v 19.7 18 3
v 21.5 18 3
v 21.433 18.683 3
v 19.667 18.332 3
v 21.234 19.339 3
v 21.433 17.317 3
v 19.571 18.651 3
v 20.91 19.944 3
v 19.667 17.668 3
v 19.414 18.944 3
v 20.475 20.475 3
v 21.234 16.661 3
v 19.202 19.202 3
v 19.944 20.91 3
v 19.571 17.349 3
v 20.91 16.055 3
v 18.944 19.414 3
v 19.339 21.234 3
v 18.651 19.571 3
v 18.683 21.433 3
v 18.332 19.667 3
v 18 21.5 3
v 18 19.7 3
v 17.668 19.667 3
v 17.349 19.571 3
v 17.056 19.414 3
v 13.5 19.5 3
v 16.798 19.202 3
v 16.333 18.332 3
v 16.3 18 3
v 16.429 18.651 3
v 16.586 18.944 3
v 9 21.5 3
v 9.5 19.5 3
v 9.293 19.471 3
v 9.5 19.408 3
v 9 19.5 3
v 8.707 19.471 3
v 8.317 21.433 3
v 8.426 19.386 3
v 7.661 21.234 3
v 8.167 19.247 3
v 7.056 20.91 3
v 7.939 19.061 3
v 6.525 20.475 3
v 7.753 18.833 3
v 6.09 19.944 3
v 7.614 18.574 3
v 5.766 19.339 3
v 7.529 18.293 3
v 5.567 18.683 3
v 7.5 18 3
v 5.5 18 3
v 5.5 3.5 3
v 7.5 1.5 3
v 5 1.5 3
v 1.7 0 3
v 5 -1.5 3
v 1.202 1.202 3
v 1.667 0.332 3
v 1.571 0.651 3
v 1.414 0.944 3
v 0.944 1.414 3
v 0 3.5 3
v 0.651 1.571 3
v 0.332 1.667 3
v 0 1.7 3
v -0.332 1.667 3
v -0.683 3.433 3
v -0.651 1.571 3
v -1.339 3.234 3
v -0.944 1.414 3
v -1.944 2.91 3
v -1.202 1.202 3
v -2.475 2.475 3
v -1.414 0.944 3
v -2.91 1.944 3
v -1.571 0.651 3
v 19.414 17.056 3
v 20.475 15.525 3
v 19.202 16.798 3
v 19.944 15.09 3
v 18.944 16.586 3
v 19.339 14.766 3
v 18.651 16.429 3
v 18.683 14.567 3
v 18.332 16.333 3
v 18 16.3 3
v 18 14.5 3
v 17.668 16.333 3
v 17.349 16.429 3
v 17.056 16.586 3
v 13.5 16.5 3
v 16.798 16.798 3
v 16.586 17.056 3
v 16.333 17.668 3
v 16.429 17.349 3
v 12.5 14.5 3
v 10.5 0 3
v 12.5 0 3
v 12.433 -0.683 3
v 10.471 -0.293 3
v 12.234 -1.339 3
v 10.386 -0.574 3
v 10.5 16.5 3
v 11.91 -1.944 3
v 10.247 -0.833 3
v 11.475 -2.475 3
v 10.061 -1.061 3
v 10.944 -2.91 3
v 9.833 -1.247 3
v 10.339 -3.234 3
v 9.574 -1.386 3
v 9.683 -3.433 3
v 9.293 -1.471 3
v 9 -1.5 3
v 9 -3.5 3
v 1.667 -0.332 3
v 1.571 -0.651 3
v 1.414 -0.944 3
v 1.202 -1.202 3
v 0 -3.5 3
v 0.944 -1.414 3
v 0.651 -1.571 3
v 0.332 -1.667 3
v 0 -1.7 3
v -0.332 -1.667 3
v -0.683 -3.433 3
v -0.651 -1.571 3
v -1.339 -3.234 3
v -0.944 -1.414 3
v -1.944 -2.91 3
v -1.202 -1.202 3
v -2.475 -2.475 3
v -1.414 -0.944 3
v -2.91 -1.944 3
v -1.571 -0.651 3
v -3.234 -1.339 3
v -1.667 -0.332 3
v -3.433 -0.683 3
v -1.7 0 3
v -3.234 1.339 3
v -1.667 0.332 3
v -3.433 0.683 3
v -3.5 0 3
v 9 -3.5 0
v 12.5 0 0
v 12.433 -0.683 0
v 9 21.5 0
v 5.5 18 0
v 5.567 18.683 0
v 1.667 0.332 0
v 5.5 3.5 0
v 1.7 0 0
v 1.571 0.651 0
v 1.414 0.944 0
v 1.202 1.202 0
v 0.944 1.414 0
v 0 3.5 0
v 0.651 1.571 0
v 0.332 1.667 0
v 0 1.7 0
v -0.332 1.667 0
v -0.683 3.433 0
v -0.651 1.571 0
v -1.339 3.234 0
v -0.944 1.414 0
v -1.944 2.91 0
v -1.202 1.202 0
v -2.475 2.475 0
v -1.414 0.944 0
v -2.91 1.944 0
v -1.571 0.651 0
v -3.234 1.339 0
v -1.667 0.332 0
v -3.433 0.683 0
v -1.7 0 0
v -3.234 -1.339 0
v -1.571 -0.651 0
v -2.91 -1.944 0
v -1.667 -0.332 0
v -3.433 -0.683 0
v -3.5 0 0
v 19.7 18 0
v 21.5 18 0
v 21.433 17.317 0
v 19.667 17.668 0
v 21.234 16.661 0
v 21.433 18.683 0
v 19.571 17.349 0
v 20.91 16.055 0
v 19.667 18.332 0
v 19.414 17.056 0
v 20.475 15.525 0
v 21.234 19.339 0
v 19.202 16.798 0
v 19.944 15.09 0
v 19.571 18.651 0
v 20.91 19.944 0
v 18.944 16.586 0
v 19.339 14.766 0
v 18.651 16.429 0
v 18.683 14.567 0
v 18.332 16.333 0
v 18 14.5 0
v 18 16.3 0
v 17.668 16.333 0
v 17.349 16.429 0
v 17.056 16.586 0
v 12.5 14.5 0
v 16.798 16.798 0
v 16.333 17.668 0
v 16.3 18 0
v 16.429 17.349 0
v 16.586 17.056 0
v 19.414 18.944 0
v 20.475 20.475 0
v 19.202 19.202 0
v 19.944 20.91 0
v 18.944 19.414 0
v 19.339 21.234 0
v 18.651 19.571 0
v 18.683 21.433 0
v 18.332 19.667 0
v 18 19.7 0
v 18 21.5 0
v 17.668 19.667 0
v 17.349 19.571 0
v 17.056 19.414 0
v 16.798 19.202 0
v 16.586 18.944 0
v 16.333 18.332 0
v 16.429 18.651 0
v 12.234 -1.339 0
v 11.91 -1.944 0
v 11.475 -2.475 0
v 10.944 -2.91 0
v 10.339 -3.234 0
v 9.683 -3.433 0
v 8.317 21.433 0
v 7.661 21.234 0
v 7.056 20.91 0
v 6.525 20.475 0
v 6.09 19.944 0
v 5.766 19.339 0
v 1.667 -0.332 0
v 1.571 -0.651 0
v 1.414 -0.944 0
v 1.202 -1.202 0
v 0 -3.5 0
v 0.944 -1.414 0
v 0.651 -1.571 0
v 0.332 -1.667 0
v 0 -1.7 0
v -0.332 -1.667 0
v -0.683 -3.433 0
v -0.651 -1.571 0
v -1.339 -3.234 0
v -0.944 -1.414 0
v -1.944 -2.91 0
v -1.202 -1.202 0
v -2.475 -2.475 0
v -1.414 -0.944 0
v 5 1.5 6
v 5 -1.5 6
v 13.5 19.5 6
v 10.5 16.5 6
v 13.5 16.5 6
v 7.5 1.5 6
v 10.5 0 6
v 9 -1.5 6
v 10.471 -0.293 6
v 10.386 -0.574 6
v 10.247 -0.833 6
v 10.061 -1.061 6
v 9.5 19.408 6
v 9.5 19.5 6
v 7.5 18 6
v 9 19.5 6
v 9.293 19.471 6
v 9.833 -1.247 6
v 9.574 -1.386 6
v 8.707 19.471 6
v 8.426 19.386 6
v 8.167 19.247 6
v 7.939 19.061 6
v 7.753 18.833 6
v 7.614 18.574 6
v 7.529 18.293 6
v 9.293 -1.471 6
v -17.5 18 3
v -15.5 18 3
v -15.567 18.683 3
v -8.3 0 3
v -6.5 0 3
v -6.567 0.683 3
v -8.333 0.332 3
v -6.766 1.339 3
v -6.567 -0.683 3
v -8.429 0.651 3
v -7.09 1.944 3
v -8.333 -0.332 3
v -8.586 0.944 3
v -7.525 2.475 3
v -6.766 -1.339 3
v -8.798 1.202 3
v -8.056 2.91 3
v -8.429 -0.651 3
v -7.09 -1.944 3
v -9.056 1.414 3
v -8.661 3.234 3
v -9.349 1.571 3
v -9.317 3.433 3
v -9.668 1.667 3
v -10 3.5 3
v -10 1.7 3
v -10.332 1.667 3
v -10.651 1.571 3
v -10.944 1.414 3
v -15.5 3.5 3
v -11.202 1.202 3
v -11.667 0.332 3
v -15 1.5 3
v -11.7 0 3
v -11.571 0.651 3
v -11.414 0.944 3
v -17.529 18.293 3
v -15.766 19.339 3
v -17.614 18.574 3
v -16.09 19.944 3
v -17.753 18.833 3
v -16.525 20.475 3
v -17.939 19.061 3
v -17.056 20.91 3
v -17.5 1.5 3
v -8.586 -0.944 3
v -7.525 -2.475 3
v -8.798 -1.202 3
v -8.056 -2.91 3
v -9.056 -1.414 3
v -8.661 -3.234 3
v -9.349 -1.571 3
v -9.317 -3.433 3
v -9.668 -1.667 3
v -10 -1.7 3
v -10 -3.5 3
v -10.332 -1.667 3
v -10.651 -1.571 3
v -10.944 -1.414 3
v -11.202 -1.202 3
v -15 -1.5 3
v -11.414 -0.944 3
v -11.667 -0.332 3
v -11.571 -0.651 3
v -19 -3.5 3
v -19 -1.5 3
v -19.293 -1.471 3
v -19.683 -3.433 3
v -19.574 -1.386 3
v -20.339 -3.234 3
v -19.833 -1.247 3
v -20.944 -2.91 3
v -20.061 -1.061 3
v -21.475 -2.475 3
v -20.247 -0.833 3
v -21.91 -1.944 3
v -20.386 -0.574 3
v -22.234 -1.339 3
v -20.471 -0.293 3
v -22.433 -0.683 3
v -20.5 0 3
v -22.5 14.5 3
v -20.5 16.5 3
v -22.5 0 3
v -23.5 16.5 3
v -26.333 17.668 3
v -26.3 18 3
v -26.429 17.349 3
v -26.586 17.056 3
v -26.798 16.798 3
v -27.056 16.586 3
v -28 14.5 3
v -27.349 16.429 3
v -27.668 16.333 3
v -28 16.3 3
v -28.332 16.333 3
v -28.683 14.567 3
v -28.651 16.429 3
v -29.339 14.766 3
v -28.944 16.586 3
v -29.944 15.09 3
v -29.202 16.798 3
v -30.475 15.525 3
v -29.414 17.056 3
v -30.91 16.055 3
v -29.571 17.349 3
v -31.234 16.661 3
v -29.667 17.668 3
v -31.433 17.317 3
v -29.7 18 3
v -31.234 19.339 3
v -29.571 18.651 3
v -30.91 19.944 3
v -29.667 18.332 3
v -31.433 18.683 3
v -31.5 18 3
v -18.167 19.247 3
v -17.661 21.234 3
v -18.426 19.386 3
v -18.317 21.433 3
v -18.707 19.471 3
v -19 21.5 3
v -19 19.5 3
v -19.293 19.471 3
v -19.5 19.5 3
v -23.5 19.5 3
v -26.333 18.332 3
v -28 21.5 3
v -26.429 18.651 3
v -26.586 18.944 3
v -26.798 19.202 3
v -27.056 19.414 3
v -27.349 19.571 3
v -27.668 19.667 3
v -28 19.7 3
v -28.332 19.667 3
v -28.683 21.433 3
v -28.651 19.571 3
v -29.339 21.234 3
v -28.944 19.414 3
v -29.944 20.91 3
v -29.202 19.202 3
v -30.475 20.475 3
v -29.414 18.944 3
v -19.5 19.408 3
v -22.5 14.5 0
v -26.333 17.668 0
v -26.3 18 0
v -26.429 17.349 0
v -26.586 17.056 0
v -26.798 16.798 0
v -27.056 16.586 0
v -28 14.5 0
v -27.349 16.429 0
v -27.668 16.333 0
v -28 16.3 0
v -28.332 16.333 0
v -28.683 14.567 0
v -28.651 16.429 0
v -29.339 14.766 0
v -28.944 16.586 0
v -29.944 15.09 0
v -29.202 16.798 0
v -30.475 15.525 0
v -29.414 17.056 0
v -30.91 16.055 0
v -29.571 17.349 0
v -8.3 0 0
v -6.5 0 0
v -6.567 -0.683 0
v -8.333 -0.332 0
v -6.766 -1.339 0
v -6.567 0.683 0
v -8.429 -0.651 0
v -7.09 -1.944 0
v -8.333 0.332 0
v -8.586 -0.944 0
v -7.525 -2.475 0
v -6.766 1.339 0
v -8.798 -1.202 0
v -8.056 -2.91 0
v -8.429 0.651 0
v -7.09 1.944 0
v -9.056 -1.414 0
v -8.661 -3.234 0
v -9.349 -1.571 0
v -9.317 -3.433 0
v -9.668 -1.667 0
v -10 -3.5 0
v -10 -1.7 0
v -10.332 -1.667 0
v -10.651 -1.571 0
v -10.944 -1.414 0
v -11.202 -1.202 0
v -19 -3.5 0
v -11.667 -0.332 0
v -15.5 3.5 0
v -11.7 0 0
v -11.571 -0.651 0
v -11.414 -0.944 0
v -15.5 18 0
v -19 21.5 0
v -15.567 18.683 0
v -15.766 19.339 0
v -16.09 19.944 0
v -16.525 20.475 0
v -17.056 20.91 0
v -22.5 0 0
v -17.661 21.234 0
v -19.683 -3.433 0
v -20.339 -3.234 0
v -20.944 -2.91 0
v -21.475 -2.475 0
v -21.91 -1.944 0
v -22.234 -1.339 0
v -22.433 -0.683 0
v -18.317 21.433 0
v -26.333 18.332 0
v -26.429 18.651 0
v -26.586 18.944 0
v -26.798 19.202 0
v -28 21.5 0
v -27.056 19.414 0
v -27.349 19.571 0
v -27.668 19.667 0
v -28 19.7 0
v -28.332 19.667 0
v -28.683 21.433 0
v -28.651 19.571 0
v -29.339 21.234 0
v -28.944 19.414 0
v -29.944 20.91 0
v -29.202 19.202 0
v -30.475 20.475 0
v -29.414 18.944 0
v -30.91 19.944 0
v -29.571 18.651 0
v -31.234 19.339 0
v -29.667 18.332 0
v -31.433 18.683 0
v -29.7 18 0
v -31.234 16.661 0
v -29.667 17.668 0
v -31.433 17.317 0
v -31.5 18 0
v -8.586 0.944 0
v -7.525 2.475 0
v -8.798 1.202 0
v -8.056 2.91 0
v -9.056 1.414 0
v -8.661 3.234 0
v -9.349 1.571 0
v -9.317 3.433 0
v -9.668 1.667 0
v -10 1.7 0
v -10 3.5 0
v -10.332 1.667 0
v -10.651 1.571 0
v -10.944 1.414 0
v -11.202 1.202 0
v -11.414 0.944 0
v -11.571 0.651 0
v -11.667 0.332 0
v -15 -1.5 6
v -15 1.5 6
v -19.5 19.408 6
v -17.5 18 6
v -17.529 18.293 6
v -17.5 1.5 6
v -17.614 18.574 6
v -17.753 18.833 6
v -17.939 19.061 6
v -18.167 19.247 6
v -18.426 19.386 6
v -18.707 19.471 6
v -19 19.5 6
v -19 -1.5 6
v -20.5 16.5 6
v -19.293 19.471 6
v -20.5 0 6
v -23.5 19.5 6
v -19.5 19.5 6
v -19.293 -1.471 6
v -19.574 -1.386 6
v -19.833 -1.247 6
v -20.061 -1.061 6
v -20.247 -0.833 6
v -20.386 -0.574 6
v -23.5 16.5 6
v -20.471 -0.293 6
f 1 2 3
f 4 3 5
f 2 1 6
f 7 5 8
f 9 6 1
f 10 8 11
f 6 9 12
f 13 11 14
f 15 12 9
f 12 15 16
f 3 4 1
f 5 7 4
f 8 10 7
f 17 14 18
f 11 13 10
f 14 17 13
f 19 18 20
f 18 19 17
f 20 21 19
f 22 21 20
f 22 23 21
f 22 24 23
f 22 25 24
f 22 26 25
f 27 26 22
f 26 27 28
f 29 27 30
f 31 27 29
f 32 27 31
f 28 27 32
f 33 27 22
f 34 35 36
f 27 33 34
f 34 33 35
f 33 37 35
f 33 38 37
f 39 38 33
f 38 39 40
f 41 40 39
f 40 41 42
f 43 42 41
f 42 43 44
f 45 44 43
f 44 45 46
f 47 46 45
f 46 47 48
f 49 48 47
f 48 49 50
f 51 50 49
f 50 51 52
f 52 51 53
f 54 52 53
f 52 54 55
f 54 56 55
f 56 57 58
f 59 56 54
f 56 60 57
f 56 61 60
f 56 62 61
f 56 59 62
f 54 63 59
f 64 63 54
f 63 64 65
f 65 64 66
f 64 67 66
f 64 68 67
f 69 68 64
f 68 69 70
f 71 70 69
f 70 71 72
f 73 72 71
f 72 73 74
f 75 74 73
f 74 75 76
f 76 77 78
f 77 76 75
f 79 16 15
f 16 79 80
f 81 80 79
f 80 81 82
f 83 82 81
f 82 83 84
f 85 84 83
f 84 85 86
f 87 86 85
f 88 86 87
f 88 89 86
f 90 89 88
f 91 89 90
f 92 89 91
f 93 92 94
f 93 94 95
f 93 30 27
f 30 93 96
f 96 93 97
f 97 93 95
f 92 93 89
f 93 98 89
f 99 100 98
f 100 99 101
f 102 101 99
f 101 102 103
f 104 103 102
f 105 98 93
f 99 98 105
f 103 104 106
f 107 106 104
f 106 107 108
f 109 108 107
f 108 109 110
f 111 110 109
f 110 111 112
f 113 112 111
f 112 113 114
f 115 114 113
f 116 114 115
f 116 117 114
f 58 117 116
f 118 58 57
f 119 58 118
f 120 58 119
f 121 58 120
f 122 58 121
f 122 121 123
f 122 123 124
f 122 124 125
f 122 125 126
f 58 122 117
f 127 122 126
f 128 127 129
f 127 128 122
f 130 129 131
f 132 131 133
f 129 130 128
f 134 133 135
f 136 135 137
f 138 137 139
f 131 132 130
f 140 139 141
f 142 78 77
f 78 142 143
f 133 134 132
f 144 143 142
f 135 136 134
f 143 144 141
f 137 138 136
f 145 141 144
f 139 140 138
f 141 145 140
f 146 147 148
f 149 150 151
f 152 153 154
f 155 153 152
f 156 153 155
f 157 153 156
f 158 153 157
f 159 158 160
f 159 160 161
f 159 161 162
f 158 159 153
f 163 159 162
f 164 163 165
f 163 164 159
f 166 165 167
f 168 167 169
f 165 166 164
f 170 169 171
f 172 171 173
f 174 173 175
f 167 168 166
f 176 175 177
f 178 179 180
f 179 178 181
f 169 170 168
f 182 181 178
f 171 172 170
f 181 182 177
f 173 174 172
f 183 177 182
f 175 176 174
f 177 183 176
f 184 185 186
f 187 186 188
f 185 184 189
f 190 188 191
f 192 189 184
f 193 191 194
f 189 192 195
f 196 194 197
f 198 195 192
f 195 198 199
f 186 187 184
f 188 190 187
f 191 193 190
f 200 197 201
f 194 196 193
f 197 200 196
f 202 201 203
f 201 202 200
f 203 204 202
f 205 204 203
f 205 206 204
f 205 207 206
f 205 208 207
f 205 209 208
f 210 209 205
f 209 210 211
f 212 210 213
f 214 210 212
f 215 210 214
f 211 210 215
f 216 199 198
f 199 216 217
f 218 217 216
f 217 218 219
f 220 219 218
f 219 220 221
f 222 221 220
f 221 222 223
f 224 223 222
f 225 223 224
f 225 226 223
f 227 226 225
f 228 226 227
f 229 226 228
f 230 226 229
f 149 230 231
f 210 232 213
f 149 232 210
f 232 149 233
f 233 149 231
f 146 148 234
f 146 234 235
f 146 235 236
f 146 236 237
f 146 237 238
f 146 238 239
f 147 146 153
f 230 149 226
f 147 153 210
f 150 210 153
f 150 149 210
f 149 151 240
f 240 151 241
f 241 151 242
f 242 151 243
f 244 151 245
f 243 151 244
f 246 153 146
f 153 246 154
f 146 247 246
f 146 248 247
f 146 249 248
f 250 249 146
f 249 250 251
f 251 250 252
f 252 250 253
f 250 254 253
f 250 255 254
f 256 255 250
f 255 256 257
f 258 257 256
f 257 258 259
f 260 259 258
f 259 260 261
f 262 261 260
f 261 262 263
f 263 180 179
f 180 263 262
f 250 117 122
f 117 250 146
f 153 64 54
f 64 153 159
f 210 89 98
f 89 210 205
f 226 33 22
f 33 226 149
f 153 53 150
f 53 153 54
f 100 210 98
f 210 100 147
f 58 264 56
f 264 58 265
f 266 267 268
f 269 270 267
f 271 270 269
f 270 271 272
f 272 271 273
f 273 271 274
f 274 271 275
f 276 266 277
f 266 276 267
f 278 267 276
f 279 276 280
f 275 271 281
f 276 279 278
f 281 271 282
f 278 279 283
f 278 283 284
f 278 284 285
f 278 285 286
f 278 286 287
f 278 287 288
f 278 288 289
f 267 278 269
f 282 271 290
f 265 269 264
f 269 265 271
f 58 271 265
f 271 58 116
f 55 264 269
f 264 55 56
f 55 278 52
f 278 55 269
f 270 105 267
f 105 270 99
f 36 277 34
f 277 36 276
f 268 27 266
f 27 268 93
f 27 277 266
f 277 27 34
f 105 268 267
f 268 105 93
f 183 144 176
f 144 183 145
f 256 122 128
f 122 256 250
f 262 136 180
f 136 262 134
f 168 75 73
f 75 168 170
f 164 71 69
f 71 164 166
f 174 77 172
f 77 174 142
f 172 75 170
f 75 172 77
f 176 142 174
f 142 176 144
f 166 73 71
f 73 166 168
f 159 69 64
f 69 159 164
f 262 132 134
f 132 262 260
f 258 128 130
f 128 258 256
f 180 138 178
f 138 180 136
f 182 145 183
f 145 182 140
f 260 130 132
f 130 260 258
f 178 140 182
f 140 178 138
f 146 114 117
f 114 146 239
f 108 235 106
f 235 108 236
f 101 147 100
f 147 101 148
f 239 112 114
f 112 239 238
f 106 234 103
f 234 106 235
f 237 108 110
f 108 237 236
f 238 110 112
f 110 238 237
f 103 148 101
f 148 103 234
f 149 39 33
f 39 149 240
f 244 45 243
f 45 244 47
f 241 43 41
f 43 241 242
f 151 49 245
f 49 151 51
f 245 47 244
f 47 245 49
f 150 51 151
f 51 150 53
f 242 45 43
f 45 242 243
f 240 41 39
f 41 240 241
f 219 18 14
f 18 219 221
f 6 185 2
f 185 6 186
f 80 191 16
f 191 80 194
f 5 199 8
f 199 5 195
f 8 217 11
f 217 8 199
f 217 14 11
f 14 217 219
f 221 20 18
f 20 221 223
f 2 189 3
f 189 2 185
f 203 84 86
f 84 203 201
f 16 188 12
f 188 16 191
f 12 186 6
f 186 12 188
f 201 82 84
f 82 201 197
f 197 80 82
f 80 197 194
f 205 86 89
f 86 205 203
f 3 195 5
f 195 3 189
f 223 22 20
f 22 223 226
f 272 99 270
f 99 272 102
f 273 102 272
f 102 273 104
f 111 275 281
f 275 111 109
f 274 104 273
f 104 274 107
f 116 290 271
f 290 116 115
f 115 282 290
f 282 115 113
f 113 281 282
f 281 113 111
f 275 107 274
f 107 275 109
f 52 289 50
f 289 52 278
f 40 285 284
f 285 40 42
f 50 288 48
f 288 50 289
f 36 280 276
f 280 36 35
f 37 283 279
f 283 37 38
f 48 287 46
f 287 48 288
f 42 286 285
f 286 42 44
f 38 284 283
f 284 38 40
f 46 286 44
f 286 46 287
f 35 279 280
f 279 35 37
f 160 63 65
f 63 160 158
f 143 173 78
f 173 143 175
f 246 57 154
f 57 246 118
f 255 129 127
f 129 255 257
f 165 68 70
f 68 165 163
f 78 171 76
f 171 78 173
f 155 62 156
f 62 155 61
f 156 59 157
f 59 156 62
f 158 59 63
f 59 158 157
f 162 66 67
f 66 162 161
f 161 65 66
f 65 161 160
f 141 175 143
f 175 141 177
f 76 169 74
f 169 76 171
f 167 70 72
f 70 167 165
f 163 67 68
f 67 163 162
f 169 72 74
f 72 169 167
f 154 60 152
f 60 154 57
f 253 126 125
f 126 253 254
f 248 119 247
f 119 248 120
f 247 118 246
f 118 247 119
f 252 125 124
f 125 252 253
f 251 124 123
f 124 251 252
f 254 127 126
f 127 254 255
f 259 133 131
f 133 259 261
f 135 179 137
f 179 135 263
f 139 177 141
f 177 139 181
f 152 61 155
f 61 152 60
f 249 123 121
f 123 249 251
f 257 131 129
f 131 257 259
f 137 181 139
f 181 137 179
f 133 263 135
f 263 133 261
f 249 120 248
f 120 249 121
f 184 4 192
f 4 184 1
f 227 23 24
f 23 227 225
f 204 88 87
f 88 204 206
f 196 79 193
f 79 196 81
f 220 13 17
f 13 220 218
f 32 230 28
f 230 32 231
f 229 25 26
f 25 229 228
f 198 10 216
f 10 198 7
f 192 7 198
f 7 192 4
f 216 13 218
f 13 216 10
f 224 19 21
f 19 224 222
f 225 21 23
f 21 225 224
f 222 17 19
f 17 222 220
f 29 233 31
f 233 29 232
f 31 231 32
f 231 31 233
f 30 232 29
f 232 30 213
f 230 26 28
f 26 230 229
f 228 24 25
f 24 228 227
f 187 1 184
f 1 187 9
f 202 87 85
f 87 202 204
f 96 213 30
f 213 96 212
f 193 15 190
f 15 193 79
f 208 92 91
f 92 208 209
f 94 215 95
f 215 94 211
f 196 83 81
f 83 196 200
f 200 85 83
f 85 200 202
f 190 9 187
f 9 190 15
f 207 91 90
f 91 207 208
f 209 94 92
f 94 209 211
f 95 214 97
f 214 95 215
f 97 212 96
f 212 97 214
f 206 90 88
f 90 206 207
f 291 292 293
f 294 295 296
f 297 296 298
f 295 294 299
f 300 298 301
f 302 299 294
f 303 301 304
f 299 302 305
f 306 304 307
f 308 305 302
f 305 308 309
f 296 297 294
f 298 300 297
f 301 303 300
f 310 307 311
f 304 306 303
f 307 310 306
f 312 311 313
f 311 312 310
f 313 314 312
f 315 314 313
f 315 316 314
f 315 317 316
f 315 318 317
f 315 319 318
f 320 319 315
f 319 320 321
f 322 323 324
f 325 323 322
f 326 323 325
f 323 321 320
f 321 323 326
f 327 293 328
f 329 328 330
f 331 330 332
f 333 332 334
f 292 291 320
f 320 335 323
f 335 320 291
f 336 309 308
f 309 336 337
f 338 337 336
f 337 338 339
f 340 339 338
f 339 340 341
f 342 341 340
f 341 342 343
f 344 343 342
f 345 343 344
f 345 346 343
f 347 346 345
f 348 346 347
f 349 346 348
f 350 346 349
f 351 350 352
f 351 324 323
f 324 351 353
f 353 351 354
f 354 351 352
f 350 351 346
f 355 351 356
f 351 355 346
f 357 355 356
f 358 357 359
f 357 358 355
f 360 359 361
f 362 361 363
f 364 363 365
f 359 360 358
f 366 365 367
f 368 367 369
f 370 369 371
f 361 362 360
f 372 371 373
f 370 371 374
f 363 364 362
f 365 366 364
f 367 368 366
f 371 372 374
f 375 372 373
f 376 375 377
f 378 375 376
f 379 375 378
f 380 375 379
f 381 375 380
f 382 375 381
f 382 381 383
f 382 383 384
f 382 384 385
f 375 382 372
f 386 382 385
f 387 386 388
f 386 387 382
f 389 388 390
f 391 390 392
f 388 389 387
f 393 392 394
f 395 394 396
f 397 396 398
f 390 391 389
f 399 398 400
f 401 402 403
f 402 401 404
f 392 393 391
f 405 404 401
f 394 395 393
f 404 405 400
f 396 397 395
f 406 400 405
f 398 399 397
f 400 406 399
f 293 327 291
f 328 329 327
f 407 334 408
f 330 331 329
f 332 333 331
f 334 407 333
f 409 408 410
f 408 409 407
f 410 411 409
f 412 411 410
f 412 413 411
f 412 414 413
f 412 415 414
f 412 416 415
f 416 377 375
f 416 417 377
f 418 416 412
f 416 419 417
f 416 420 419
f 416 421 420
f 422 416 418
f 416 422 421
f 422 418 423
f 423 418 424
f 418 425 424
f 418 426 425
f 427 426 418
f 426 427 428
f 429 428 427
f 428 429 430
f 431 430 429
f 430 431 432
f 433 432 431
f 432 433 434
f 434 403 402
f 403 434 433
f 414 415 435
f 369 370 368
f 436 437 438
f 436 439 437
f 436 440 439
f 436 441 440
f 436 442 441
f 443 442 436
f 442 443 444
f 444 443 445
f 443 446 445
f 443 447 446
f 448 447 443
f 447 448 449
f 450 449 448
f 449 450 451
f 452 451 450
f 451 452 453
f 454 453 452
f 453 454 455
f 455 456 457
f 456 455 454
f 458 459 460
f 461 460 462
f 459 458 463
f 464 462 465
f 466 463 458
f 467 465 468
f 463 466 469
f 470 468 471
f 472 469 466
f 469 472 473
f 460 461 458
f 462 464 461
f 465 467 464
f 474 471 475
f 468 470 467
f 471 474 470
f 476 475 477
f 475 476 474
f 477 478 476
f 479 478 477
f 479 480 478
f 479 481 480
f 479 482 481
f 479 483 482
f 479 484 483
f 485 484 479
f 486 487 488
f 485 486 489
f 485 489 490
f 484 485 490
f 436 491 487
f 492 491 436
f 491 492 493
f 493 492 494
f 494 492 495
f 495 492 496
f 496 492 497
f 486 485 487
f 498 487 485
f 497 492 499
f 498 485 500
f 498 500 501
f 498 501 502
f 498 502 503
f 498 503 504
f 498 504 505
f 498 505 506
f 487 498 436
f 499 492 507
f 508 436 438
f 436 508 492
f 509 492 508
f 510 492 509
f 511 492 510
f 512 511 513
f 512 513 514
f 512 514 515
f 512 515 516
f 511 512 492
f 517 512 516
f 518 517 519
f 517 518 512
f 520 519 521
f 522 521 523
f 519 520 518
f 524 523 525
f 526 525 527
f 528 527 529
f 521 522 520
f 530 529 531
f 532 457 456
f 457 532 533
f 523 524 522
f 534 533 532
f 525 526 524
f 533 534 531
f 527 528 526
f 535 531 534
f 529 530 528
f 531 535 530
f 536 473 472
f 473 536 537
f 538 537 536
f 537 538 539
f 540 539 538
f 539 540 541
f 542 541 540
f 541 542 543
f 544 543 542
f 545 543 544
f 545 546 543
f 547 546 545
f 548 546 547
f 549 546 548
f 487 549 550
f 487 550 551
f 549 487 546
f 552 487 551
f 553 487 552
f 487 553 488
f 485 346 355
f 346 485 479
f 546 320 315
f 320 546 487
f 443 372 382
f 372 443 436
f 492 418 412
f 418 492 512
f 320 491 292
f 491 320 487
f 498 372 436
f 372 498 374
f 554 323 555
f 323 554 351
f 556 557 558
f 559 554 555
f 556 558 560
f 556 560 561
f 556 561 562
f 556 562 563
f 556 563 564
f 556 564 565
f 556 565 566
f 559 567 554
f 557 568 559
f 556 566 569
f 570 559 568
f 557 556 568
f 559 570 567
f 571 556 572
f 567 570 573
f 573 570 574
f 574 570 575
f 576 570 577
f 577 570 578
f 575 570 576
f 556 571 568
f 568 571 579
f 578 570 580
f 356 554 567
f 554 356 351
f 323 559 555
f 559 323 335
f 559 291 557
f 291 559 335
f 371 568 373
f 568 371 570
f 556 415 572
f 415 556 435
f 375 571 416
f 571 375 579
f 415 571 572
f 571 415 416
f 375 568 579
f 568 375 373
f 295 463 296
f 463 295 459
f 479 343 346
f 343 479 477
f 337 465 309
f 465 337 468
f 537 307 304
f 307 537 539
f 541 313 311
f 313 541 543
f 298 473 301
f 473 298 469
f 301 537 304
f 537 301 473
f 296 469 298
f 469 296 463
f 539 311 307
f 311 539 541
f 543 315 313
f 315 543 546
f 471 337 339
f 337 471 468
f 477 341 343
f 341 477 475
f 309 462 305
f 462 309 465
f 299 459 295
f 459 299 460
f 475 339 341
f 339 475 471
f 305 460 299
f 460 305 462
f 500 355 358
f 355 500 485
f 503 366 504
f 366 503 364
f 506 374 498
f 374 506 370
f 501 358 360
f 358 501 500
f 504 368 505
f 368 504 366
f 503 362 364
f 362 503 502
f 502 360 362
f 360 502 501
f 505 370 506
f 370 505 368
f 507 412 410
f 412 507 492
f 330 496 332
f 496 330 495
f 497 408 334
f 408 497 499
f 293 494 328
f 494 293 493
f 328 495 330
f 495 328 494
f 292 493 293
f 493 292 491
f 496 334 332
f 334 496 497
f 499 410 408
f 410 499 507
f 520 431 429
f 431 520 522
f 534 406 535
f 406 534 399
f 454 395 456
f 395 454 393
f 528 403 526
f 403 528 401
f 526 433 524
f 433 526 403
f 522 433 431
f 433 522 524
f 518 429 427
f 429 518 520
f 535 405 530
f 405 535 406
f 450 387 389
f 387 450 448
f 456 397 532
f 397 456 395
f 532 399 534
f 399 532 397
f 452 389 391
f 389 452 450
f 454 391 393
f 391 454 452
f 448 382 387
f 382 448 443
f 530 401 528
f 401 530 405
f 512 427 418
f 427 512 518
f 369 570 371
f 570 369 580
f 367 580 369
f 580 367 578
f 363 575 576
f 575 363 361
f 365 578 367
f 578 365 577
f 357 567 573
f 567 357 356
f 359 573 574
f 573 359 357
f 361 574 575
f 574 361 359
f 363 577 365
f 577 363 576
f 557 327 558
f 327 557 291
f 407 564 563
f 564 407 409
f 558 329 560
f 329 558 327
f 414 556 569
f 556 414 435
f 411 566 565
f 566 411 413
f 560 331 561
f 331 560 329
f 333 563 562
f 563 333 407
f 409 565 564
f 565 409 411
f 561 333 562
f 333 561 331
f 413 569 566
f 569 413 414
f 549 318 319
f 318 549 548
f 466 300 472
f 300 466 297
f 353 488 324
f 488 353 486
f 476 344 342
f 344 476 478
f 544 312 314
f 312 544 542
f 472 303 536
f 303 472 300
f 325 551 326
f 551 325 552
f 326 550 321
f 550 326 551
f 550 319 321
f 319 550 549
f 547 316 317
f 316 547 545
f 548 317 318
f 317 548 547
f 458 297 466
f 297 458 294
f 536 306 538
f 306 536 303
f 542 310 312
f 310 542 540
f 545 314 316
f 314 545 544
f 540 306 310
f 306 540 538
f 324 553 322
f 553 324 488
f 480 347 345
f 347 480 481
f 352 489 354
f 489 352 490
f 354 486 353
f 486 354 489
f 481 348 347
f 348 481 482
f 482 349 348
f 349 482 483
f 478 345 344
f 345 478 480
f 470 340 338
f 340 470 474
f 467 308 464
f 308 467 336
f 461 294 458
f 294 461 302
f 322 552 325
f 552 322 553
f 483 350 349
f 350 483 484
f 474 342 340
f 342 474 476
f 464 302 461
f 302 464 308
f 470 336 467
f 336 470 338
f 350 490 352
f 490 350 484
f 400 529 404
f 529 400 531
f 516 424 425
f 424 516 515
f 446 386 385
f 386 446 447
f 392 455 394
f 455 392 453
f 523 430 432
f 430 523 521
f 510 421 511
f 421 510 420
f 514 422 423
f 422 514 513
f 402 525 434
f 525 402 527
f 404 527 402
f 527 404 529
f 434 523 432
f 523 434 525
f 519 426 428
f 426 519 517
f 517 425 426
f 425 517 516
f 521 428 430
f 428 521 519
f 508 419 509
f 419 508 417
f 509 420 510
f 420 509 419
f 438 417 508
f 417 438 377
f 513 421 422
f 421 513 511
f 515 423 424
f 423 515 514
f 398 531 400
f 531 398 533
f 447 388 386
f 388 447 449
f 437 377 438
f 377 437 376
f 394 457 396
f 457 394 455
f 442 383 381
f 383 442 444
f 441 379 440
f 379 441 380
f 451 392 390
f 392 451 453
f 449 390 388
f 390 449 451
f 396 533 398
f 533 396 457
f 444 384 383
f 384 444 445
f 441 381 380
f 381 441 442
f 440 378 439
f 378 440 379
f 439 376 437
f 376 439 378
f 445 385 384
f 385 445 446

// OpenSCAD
//-- arm1_z_shape_medium_1a.scad by AndrewBCN - April 2015
//-- remix of thing #154834
//-- replaces Brazo.stl with slightly stronger part
//-- and with source file.
//-- GPL V3

arm_th=3;
len1=9;
len2=16+2;
arm_wi=7;
$fn=32;

//-- this arm variant is shaped like a Z - useful in some cases

module arm() {
  difference() {
    // arm
    union() {
      // arm straight blocks
      translate([len1/2,0,arm_th/2]) cube([len1,arm_wi,arm_th], center=true);
      translate([1.5*len1,len2,arm_th/2]) cube([len1,arm_wi,arm_th], center=true);
      // long one
      translate([len1,len2/2,arm_th/2]) cube([arm_wi,len2,arm_th], center=true);
      // this is the small reinforcement in the middle
      translate([len1-2,0,1.5*arm_th]) cube([len1-5,arm_th,arm_th], center=true);
      translate([len1,len2/2,1.5*arm_th]) cube([arm_th,len2,arm_th], center=true);
      translate([1.5*len1-2,len2,1.5*arm_th]) cube([len1-5,arm_th,arm_th], center=true);
      // the two rounded ends and the two rounded corners
      translate([0,0,arm_th/2]) cylinder(r=arm_wi/2, h=arm_th, center=true);
      translate([len1,0,arm_th/2]) cylinder(r=arm_wi/2, h=arm_th, center=true);
      translate([len1,len2,arm_th/2]) cylinder(r=arm_wi/2, h=arm_th, center=true);
      translate([2*len1,len2,arm_th/2]) cylinder(r=arm_wi/2, h=arm_th, center=true);
      // reinforcement rounded corners
      translate([len1,0,1.5*arm_th]) cylinder(r=arm_th/2, h=arm_th, center=true);
      translate([len1,len2,1.5*arm_th]) cylinder(r=arm_th/2, h=arm_th, center=true);
    }
    // holes
    cylinder(r=3.4/2, h=3*arm_th, center=true);
    translate([9+len1,len2,0]) cylinder(r=3.4/2, h=3*arm_th, center=true);
  }
}

// build two mirrored copies
arm();
translate([-10,0,0]) mirror([1,0,0]) arm();
